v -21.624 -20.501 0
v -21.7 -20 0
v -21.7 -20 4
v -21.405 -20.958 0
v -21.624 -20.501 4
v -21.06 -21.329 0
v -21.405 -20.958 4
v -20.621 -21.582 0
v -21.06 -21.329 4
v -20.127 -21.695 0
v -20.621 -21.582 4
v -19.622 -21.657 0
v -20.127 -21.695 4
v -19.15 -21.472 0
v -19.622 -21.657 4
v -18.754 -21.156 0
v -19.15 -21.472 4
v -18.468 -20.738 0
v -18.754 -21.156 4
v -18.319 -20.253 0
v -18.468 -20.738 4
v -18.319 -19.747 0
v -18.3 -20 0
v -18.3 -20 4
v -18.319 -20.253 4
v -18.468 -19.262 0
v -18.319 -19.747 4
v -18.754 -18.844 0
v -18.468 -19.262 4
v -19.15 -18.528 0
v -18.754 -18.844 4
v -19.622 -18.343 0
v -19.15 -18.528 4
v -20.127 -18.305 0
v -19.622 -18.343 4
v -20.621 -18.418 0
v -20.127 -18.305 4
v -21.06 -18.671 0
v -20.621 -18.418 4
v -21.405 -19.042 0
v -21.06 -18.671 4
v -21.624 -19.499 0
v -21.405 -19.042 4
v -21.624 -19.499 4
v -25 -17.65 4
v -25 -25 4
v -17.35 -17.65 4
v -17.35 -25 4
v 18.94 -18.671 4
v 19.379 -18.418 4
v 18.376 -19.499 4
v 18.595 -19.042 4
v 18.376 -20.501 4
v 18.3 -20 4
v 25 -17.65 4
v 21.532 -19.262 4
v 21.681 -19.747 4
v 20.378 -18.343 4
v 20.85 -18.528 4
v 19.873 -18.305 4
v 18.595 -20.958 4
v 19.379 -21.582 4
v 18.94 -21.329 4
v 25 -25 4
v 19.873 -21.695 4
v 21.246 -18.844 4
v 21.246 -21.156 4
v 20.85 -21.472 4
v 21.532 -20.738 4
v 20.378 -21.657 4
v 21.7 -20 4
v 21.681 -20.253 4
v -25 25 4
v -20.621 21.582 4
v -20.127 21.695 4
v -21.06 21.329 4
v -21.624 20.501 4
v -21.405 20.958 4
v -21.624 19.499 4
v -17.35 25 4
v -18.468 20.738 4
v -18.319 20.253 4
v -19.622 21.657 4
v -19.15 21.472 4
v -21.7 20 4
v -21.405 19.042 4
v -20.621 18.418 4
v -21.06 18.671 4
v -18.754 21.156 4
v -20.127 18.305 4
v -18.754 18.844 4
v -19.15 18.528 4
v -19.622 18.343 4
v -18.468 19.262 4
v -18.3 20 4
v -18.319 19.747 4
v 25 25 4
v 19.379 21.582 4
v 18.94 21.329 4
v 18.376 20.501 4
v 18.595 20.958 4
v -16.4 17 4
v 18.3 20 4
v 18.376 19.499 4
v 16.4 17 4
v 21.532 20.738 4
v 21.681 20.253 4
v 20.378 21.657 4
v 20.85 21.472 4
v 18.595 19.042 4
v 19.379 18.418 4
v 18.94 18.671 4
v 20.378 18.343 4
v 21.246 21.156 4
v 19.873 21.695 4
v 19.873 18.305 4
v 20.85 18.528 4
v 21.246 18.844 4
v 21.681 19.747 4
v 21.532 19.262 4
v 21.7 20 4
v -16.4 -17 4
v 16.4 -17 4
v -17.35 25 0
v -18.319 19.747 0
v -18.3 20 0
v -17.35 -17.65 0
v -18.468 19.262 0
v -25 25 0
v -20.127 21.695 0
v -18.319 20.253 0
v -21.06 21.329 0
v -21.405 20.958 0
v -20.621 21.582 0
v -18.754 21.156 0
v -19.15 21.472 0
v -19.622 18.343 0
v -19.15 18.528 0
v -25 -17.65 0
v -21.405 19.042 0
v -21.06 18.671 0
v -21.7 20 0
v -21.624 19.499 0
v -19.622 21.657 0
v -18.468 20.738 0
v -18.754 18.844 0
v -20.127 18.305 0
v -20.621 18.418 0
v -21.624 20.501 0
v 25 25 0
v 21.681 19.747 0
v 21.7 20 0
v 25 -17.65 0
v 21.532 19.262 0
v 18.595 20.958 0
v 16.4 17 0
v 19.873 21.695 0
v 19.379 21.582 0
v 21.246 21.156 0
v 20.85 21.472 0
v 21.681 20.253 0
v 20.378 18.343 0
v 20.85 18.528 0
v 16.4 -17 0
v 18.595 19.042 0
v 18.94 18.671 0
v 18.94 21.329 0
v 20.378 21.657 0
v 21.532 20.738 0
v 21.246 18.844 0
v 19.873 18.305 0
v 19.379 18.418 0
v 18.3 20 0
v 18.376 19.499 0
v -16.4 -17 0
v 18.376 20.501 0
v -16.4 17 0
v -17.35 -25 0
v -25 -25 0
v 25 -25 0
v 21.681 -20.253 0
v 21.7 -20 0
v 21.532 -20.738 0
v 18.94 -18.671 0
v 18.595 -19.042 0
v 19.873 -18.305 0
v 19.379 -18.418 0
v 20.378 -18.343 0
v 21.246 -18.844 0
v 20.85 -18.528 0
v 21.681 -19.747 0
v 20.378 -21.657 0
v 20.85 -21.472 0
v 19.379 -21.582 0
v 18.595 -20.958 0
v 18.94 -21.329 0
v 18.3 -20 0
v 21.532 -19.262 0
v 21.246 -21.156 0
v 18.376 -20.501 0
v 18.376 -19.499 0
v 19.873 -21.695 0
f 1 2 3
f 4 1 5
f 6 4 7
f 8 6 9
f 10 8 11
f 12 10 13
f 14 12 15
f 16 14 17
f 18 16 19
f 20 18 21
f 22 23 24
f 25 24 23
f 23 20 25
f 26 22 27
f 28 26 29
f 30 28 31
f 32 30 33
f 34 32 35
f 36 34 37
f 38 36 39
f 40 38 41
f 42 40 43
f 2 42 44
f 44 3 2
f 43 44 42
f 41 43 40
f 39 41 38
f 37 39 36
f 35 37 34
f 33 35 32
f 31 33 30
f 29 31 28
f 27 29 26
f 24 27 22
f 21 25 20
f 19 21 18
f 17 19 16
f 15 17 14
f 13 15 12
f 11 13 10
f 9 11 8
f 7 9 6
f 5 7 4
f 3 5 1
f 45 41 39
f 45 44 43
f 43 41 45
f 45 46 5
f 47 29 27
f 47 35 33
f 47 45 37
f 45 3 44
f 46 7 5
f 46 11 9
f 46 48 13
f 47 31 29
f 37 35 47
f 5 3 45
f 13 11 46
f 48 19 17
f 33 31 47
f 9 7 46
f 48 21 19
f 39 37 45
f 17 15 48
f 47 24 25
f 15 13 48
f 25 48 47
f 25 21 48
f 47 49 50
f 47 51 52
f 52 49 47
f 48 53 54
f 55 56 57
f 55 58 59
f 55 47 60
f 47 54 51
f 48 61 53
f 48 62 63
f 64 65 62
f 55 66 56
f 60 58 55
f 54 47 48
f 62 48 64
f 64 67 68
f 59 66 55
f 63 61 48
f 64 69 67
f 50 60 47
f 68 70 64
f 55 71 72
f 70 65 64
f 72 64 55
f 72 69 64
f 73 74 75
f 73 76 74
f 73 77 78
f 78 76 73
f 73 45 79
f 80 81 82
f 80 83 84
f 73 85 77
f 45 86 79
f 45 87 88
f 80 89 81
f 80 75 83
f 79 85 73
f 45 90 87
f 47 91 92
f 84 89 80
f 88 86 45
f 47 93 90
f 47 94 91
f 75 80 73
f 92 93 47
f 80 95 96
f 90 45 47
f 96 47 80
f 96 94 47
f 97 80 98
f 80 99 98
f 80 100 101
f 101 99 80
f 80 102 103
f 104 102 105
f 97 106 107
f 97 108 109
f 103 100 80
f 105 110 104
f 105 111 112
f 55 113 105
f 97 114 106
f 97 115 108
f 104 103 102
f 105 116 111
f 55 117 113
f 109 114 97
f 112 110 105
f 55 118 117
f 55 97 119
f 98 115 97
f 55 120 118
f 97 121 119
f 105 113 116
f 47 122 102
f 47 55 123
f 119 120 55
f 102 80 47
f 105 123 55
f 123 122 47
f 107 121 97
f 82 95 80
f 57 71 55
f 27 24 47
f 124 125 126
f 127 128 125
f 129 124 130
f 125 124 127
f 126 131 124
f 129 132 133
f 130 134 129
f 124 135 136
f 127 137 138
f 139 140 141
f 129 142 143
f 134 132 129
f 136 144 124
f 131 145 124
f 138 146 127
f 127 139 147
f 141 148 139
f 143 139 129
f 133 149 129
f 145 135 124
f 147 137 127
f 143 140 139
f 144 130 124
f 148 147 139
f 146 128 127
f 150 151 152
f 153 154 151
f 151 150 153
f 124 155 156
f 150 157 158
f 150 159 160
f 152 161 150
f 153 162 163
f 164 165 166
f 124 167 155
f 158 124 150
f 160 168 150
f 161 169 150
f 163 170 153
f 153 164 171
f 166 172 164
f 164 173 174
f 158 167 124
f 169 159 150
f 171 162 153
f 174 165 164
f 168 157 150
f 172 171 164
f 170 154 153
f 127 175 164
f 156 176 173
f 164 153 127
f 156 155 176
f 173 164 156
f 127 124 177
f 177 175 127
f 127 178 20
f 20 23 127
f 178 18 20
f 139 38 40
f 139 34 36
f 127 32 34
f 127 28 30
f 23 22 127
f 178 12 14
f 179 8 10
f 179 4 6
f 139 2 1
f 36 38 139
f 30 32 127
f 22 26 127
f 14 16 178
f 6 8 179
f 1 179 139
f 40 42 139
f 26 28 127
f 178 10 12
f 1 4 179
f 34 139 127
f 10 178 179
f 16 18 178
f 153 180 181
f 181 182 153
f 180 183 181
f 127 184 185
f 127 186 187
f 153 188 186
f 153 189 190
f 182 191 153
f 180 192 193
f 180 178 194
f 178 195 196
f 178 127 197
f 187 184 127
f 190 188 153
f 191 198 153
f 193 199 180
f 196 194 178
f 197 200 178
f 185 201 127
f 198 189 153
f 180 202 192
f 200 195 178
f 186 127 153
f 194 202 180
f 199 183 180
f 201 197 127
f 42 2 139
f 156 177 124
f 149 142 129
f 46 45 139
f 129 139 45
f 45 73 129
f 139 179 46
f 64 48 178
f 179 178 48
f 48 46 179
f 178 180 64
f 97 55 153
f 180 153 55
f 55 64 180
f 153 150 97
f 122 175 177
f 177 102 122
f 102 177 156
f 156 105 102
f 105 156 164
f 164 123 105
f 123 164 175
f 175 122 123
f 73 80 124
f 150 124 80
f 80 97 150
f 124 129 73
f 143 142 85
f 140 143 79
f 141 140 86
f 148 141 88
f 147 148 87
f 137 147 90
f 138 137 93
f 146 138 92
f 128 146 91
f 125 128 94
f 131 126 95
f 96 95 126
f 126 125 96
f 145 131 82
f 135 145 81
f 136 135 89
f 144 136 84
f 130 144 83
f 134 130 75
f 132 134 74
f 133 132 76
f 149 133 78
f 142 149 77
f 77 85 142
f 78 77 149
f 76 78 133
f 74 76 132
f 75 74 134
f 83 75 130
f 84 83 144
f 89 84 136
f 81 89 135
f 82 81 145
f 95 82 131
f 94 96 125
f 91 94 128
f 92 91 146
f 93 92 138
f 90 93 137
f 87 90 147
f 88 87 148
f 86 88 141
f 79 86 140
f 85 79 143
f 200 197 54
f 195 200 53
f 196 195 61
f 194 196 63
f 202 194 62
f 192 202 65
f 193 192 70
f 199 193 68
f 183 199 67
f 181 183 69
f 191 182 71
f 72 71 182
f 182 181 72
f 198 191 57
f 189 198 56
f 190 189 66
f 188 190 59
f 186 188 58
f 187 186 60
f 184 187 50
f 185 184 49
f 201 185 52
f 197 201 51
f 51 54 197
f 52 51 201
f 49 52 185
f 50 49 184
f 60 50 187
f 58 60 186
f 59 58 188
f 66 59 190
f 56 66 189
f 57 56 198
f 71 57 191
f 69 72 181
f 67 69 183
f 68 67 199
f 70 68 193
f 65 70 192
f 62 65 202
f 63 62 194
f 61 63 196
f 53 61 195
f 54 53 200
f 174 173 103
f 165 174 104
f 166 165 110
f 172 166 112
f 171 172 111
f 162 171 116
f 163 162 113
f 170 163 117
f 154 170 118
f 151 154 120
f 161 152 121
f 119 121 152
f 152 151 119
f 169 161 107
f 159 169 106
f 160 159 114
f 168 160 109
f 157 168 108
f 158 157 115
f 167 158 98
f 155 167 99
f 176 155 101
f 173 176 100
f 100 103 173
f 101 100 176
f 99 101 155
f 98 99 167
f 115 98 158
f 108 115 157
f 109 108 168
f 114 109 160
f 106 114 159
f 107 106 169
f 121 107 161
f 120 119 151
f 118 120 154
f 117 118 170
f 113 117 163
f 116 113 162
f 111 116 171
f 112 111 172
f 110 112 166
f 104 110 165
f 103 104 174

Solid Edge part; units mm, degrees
sketch "Sketch1" plane through (0, 0, 0) normal (0, 0, 1) x (1, 0, 0)
  line L0 (-25, -25) -> (25, -25)
  line L1 (25, -25) -> (25, 25)
  line L2 (25, 25) -> (-25, 25)
  line L3 (-25, 25) -> (-25, -25)
  line L4 (-16.4, -17) -> (16.4, -17)
  line L5 (16.4, -17) -> (16.4, 17)
  line L6 (16.4, 17) -> (-16.4, 17)
  line L7 (-16.4, 17) -> (-16.4, -17)
  circle A0 centre (-20, -20) radius 1.7
  circle A1 centre (-20, 20) radius 1.7
  circle A2 centre (20, -20) radius 1.7
  circle A3 centre (20, 20) radius 1.7
extrude "Protrusion1" add sketch "Sketch1" along normal blind 4
